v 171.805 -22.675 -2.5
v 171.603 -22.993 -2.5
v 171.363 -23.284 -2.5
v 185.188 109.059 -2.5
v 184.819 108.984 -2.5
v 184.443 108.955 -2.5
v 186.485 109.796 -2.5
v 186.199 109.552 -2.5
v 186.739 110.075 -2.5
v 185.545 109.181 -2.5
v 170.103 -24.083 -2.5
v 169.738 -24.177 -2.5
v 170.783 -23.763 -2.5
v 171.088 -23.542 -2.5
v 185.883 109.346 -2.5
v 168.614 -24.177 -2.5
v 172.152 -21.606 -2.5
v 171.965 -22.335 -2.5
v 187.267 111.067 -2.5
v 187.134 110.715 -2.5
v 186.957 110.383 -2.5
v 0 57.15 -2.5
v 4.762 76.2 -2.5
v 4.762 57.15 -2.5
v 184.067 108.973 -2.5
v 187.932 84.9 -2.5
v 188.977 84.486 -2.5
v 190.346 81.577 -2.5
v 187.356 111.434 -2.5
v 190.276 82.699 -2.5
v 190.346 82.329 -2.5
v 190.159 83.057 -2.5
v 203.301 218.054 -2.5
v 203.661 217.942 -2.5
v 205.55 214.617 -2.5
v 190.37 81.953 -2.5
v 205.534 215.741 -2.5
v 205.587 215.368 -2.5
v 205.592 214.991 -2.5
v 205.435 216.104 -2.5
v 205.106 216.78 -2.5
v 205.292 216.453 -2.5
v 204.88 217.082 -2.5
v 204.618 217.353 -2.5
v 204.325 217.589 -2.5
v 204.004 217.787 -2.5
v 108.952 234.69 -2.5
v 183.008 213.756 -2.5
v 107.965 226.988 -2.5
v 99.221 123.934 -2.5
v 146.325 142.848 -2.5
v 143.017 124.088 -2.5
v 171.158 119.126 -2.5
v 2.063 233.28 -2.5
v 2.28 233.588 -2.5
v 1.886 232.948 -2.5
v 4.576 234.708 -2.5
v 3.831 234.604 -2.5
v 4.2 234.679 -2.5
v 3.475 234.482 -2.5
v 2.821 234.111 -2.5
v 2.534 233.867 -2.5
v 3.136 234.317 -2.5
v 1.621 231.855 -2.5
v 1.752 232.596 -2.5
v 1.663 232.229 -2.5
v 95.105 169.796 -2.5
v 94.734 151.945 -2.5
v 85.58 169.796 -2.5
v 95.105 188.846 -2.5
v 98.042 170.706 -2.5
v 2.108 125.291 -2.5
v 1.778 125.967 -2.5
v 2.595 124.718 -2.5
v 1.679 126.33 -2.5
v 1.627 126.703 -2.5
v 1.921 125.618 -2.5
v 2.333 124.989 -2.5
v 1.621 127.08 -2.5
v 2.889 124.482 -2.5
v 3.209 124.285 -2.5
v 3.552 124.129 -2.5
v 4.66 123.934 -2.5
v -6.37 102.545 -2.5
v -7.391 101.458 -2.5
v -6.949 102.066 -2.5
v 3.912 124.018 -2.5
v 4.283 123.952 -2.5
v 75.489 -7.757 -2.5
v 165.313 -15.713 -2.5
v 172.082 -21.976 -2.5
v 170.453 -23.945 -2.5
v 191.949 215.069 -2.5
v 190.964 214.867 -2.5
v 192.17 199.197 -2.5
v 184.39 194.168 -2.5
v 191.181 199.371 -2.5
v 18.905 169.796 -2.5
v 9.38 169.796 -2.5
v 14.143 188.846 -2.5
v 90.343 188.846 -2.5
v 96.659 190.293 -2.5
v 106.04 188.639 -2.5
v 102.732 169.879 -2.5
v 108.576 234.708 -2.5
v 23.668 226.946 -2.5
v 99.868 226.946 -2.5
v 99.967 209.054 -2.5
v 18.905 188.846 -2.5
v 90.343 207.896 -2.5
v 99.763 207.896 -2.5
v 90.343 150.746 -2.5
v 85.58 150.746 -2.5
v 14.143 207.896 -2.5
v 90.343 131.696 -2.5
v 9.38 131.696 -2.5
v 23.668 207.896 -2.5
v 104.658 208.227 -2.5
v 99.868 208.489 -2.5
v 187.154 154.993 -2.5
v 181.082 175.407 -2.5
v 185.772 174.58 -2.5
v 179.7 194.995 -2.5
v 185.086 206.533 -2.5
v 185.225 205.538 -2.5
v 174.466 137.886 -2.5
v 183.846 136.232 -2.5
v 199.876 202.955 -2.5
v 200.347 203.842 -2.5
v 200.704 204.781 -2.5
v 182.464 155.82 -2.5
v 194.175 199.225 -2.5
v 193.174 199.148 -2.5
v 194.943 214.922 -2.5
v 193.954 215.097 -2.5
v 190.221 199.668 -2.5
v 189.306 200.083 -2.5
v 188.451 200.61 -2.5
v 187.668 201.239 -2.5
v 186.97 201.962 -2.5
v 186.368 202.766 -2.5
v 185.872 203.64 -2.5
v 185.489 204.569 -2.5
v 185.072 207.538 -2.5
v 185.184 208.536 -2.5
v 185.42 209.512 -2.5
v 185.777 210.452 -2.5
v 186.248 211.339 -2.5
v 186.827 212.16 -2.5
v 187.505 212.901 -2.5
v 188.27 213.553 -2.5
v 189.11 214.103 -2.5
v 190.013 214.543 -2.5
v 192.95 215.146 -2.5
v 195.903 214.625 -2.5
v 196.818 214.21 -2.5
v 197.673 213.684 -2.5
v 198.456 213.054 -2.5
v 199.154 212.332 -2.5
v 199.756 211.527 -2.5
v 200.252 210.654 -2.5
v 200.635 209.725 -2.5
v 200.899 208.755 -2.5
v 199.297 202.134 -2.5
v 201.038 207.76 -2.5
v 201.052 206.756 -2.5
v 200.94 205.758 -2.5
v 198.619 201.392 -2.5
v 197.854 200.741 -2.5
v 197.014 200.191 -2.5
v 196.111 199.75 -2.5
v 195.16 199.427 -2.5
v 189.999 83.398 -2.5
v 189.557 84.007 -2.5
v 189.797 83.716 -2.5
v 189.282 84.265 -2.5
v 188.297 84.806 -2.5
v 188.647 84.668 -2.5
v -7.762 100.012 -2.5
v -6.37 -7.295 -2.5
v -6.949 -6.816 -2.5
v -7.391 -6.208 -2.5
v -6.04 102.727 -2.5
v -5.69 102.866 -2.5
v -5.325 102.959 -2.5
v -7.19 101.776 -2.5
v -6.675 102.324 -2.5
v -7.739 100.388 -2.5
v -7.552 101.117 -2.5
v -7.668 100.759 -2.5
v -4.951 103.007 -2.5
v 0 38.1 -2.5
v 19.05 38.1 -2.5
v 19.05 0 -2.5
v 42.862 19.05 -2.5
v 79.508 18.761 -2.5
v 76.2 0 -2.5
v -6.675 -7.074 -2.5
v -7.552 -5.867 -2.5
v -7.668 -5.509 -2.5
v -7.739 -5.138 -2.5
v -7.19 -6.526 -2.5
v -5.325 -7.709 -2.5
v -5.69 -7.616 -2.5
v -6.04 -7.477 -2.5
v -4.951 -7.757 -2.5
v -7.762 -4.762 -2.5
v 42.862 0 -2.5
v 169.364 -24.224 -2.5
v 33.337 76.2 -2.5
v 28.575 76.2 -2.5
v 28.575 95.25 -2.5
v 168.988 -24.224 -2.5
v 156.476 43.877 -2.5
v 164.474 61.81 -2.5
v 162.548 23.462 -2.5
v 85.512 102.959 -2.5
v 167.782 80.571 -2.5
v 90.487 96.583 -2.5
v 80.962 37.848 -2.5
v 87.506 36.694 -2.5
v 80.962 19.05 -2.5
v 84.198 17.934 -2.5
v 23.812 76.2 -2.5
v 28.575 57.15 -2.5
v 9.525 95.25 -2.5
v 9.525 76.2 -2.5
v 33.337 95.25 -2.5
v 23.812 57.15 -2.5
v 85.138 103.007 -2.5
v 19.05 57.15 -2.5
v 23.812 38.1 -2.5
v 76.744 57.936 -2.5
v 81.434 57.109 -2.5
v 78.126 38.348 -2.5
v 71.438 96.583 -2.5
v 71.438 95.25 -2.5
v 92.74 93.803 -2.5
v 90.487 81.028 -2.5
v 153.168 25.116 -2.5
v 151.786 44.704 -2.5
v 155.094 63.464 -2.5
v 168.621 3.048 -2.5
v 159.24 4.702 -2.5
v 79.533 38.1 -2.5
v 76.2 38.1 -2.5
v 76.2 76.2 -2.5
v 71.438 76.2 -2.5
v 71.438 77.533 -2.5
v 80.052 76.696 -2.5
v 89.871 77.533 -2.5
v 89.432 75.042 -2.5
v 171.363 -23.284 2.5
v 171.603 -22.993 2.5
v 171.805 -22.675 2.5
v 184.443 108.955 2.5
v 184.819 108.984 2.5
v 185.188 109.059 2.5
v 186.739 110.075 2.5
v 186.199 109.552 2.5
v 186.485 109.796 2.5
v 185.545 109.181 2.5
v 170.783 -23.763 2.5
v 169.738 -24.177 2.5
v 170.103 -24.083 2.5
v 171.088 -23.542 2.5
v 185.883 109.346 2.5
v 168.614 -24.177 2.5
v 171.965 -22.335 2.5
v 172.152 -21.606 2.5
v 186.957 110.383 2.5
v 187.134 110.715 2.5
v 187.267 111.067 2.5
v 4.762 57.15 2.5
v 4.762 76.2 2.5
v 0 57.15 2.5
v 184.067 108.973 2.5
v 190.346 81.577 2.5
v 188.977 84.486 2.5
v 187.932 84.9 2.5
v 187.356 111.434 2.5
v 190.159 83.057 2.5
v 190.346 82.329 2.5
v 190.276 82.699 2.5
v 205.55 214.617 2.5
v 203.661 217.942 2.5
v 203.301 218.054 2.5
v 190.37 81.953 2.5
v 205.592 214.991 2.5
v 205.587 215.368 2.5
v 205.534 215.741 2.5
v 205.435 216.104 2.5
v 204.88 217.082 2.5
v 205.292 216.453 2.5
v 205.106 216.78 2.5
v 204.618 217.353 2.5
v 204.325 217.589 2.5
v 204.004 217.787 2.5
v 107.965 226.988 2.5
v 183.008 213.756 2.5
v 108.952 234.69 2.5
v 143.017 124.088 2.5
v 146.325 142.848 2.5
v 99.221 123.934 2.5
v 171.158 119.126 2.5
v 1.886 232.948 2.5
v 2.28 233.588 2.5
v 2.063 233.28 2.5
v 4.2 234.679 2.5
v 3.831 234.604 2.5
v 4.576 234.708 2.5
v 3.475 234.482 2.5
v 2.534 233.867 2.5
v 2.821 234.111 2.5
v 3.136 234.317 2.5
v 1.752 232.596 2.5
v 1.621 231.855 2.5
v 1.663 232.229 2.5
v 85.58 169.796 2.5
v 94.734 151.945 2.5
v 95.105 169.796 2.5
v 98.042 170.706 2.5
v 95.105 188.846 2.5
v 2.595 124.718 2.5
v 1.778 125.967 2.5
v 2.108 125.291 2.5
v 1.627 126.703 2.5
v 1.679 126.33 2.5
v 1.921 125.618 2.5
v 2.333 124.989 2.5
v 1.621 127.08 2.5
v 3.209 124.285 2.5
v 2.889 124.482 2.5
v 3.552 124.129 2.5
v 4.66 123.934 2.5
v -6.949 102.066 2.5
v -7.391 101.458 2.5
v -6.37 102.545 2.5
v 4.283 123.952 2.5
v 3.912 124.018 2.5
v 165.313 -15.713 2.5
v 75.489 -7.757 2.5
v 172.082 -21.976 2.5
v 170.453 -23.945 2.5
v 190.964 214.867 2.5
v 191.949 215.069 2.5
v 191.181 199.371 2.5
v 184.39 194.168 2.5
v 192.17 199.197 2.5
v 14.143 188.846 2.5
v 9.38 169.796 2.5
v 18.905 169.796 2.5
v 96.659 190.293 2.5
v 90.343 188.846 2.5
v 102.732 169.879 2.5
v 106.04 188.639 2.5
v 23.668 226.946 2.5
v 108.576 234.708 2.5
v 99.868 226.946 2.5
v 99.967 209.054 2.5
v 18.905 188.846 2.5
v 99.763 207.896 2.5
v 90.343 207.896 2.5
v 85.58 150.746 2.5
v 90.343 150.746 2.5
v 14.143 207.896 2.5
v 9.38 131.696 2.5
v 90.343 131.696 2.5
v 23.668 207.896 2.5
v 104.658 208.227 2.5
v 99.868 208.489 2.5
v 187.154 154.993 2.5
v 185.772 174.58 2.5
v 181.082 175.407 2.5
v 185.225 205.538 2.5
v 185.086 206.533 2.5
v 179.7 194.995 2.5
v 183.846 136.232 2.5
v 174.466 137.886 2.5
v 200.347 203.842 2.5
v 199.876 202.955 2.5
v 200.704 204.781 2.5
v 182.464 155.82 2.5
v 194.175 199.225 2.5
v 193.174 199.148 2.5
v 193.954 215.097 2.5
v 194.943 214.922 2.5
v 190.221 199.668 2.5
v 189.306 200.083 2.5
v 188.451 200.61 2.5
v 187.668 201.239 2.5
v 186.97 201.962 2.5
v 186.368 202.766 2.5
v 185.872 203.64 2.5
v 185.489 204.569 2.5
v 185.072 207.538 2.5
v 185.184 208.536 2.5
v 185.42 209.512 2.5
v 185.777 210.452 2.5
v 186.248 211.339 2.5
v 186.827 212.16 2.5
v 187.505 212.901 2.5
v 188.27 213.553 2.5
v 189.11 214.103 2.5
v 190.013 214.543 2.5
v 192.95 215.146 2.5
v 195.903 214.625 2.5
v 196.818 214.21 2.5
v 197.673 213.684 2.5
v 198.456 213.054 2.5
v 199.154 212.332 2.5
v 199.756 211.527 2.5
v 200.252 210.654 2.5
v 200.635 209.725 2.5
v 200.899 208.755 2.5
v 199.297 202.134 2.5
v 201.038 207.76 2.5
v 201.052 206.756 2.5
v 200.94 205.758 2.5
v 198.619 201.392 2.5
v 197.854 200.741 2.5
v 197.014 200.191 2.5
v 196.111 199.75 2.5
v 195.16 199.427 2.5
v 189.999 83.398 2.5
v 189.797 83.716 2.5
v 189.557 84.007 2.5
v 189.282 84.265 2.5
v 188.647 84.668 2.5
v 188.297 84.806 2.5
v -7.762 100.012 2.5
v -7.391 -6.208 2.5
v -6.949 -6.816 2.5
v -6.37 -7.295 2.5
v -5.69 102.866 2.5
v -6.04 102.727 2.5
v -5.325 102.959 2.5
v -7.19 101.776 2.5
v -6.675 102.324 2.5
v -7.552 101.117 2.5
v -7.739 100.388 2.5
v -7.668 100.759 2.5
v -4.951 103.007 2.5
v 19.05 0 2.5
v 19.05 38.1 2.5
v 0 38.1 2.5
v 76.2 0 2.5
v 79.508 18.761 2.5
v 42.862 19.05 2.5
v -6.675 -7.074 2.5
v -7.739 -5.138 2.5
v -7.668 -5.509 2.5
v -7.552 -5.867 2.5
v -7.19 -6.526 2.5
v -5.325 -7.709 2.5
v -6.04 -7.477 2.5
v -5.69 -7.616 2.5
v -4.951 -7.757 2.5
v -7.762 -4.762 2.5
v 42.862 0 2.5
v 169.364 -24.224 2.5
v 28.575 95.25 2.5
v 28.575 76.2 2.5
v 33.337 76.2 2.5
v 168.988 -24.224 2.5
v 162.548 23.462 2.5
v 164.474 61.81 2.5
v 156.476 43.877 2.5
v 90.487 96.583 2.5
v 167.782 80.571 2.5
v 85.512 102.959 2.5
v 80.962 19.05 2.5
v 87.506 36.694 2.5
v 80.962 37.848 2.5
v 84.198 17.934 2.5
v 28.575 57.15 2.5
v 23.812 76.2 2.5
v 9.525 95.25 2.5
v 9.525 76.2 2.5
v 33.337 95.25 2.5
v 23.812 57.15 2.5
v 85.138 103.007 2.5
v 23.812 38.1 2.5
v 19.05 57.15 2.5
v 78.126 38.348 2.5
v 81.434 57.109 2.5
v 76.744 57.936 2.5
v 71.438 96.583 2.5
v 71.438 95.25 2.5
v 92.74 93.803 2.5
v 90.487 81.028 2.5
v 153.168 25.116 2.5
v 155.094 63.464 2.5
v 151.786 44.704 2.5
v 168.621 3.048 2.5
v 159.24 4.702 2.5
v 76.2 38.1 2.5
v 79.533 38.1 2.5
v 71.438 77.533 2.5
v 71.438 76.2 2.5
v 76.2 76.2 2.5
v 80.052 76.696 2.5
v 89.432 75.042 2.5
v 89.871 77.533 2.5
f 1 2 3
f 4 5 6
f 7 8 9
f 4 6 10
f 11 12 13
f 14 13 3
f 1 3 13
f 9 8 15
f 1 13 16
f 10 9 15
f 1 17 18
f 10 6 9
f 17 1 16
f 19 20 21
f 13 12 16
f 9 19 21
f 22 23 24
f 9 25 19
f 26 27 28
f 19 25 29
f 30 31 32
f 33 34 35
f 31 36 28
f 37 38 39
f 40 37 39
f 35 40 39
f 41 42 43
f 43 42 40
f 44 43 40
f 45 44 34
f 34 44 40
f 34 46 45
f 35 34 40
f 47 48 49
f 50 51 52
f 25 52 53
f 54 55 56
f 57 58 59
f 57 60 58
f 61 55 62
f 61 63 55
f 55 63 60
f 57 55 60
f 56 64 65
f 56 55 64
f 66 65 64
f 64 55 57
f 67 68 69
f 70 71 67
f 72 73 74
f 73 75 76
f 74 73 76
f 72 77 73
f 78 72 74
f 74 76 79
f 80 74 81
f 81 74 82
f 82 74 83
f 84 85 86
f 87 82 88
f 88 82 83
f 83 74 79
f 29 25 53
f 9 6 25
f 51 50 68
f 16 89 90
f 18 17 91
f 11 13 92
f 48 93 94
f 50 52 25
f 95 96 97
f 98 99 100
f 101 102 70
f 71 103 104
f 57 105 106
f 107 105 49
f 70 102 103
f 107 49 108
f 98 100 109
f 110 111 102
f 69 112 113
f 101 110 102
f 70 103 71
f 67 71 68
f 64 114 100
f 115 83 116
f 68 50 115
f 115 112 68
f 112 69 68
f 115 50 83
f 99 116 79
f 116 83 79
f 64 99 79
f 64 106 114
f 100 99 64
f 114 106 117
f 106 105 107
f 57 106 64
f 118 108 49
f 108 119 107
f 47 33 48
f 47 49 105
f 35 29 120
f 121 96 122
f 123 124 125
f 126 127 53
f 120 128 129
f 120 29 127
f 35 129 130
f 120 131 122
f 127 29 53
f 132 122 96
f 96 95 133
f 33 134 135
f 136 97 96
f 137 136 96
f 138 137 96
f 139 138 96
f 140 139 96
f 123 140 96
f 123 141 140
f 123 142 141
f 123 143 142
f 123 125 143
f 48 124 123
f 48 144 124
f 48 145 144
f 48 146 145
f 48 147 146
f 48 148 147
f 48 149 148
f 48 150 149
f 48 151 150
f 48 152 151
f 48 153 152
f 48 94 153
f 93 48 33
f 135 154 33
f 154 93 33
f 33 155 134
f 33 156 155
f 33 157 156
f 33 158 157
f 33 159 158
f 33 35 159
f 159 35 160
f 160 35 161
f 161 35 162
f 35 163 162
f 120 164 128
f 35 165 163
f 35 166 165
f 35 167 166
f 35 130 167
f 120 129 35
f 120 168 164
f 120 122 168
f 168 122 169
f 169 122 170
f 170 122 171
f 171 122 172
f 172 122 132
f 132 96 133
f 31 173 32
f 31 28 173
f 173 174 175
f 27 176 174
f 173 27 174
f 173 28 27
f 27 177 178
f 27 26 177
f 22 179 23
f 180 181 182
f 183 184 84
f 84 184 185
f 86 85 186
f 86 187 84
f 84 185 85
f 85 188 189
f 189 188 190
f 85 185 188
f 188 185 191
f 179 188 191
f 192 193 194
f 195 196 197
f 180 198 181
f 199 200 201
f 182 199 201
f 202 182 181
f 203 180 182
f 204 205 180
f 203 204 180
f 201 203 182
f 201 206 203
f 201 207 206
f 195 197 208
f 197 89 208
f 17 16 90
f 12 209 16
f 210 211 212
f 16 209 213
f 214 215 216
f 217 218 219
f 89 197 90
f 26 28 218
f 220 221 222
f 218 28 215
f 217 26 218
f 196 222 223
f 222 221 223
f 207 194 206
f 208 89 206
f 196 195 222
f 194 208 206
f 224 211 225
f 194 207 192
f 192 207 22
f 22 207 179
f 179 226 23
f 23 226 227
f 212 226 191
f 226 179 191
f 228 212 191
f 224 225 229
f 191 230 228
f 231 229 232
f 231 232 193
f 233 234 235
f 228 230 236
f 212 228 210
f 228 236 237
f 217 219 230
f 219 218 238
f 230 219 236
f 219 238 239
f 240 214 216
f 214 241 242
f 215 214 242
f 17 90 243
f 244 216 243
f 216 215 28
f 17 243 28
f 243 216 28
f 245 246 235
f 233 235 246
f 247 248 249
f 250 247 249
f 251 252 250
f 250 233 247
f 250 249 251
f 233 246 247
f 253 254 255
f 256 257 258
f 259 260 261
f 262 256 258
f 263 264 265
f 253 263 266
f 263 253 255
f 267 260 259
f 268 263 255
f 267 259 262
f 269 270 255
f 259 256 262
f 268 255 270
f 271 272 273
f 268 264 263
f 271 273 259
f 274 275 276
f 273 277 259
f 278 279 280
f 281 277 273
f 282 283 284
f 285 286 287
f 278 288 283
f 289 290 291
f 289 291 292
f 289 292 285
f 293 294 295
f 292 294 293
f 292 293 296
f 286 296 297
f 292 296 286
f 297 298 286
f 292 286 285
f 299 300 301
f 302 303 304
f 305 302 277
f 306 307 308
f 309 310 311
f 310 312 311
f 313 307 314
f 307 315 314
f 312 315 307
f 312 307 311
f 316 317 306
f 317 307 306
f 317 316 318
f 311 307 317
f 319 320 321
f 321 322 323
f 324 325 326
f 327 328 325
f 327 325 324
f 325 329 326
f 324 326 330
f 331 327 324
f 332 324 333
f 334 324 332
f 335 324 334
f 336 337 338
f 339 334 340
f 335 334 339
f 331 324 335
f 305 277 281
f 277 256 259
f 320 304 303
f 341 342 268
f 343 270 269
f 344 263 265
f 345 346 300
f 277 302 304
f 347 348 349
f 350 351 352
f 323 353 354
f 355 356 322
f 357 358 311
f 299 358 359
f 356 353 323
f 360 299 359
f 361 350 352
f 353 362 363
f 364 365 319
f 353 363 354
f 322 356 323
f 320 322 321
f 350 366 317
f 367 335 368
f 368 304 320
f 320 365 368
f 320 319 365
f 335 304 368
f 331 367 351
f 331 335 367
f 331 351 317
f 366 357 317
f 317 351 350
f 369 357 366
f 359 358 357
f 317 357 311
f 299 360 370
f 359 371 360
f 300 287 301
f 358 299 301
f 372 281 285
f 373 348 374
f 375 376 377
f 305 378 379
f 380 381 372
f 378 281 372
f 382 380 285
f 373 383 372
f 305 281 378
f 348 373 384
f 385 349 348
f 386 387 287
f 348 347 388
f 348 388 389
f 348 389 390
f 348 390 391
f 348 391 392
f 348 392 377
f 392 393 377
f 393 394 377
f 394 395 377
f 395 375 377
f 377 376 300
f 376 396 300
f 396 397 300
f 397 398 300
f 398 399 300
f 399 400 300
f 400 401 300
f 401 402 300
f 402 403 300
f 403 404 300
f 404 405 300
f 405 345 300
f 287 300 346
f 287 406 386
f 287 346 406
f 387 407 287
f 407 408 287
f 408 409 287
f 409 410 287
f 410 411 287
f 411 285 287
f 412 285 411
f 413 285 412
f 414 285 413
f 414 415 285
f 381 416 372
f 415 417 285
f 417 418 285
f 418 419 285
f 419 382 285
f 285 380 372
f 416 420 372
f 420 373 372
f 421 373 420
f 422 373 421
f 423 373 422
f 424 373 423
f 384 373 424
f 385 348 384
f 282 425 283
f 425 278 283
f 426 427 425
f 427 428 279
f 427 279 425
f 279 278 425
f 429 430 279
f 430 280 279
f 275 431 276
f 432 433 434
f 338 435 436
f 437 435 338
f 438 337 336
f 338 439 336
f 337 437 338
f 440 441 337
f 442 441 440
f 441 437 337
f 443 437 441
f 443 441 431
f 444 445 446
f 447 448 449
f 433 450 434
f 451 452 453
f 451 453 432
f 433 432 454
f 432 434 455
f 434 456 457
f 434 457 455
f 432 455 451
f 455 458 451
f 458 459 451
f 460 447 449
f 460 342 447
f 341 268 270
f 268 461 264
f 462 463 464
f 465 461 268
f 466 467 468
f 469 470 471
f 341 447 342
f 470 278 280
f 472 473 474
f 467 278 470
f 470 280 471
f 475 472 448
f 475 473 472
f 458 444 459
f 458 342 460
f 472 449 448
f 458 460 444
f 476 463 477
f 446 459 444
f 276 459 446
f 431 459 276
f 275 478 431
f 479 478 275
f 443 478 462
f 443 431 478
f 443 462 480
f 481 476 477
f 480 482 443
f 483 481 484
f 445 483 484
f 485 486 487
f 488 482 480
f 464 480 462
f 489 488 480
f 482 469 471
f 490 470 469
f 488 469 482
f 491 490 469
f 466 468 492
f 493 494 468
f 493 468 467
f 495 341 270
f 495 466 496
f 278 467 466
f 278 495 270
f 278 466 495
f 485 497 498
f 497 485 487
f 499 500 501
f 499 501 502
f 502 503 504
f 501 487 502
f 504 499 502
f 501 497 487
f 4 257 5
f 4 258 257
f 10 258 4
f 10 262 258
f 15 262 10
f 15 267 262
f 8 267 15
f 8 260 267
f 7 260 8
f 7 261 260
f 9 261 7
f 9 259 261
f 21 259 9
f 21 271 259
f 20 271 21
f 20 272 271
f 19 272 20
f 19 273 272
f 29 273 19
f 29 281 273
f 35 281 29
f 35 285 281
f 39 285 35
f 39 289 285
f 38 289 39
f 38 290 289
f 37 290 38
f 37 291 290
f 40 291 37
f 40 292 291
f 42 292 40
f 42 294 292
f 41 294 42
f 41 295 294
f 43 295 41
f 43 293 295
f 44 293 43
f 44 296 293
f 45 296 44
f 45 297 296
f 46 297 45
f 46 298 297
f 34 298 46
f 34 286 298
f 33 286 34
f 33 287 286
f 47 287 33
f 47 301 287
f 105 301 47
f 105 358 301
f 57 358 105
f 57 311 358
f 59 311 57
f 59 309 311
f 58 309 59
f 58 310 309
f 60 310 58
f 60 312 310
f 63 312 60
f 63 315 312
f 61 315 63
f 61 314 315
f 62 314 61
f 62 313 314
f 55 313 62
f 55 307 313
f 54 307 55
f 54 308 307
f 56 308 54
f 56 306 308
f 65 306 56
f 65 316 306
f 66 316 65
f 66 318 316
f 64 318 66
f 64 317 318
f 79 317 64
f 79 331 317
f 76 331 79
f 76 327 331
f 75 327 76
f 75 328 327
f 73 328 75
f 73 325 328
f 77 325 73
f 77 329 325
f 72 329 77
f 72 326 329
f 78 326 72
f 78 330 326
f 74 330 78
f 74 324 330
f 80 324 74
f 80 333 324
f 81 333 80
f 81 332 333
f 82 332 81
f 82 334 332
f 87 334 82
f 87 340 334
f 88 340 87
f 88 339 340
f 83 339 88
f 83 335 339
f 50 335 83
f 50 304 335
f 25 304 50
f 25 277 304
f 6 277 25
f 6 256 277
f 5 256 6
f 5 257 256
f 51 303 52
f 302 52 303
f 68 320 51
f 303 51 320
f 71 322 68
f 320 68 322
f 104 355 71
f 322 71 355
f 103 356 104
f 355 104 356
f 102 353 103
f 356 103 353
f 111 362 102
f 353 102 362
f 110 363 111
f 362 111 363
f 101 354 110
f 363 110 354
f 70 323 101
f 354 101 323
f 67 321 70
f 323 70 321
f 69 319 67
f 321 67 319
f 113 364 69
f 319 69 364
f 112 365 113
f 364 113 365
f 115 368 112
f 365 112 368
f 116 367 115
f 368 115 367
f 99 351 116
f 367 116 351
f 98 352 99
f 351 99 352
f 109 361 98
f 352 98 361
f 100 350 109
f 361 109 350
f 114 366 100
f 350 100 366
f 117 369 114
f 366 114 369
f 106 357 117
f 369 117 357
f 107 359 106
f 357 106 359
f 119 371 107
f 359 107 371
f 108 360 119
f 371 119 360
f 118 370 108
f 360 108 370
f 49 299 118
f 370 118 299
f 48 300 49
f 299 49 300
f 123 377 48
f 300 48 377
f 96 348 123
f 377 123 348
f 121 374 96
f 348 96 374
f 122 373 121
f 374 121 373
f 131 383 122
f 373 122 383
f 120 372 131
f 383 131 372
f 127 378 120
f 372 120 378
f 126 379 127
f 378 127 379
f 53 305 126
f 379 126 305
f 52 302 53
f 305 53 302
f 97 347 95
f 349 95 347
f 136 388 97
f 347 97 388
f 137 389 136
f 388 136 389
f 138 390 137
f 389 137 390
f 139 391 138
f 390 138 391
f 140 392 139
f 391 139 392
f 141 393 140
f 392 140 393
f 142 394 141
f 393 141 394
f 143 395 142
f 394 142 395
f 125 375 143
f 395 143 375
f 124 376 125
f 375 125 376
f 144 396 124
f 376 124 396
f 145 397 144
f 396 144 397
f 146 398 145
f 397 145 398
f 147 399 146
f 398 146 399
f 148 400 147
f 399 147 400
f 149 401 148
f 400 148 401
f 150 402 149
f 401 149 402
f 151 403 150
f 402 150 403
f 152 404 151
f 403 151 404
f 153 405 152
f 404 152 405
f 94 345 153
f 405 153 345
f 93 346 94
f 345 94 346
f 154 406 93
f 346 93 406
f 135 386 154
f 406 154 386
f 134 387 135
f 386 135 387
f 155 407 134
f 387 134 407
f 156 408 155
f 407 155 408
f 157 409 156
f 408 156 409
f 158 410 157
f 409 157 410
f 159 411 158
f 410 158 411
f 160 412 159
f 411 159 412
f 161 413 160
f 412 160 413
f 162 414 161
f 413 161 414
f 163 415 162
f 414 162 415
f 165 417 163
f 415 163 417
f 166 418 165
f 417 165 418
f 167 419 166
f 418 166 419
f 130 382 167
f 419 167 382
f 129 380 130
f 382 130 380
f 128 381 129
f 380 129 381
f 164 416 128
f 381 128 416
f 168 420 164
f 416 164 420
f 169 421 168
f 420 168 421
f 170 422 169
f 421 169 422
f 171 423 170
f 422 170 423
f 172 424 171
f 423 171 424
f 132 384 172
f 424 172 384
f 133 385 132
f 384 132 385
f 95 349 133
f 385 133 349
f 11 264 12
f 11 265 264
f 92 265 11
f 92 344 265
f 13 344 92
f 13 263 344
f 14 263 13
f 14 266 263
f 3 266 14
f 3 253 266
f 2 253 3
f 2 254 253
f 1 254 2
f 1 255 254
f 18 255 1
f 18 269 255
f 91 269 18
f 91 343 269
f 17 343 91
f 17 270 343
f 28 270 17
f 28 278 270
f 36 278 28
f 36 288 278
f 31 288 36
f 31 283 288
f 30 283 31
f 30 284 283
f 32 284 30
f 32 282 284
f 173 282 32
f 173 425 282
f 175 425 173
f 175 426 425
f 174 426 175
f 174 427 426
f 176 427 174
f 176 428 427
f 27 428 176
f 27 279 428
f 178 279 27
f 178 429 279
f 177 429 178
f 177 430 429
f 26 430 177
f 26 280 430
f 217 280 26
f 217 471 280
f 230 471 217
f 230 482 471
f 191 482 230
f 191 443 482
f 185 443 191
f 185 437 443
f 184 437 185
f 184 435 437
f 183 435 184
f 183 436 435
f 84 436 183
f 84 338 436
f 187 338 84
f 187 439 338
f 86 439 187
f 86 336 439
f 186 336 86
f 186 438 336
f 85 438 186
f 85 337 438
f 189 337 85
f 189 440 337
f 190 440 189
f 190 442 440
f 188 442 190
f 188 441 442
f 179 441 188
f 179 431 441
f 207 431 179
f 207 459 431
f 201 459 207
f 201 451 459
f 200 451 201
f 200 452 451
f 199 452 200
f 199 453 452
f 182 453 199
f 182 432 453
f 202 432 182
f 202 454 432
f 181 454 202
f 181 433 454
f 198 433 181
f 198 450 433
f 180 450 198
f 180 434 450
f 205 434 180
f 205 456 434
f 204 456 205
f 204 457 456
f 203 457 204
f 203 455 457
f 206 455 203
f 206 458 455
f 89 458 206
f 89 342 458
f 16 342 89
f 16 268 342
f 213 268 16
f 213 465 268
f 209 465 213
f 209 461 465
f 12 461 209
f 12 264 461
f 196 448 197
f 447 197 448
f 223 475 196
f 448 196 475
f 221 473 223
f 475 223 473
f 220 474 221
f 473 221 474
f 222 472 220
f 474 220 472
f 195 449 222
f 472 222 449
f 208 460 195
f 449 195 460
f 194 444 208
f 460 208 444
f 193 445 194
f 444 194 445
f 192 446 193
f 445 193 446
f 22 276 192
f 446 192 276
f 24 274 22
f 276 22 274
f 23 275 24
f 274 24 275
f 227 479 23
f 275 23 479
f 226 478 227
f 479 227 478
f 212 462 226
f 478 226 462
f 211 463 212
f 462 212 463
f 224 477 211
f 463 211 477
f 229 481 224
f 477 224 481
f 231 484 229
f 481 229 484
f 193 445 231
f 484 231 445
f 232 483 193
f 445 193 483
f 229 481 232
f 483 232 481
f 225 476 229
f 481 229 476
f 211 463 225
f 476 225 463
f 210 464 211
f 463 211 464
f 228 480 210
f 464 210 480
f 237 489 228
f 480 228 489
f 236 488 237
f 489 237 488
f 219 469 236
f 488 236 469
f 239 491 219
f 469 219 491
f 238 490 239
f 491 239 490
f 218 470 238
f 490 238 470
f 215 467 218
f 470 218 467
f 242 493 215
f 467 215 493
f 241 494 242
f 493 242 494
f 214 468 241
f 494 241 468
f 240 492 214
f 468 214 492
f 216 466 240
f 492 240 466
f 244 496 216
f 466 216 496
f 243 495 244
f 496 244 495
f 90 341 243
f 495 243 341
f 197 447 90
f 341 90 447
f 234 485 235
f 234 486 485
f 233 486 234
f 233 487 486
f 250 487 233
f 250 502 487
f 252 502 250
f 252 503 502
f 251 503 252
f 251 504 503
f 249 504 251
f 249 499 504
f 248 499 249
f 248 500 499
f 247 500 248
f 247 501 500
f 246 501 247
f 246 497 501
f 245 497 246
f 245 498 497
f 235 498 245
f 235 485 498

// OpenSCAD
// file: base.scad
/* 1u = 1mm */
$fn = 50;
$fa = 5;
$fs = 0.1;

// CONSTANTS
PLATE_PLACEHOLDER_SIZE = 19.05;
SWITCH_SIZE = 14; // Change to 18 to see keycap clearance
ROTATION = 10; // degrees
RIGHT_PLATE_OFFSET = 7;

PLATE_HEIGHT = 5;
OUTER_WIDTH = 3;
INNER_WIDTH = 1.5;

// https://cdn.matt3o.com/uploads/2018/05/keycap-size-diagram.png
module plate_placeholder(width=1) {
    translate([width*PLATE_PLACEHOLDER_SIZE/2, PLATE_PLACEHOLDER_SIZE/2])
        square([width*PLATE_PLACEHOLDER_SIZE, PLATE_PLACEHOLDER_SIZE], center=true); // keycap placeholder space
}

module switch(width=1) {
    translate([width*PLATE_PLACEHOLDER_SIZE/2, PLATE_PLACEHOLDER_SIZE/2])
        square([SWITCH_SIZE, SWITCH_SIZE], center=true);
}

function sum(row, i = 0, sum_so_far = 0) = len(row) == i ? sum_so_far : sum(row, i+1, sum_so_far+row[i]);

function accumulate_lengths(row, i = 0, sum=0) = len(row) - 1 == i ? [sum] :
    concat(sum, accumulate_lengths(row, i+1, sum+row[i]));

module cluster(keys, type) { // 2d array
    for (row_index = [0:len(keys)-1]) {
        row_lengths = accumulate_lengths(keys[row_index]);

        for (col_index = [1:len(keys[row_index])-1]) {
            x_offset = row_lengths[col_index];
            y_offset = len(keys)-1-row_index;
            size = keys[row_index][col_index];

            if (size >= 1) {
                if (type == "B") {
                    translate([x_offset * PLATE_PLACEHOLDER_SIZE, y_offset * PLATE_PLACEHOLDER_SIZE, 0])
                        switch(size);
                } else if (type == "A") {
                    translate([x_offset * PLATE_PLACEHOLDER_SIZE, y_offset * PLATE_PLACEHOLDER_SIZE, 0])
                        plate_placeholder(size);
                }
            }
        }
    }
}

module ky_040(type) {
    if (type == "B") {
        circle(6.4/2);
    } else if (type == "A") {
        circle(16/2);
    }
}

// LEFT CLUSTER
//        PAD  ESC PAD   MODS KEY
left_cluster = [[0.5,  1, 0.25, 1,    1],
                [0.25, 1, 0.25, 1.5,  1],
                [0,    1, 0.25, 1.75, 1],
                [1,             2.25, 1],
                [1,          1.25]];

left_center_cluster = [[0.5,  1,   1, 1, 1],
                       [0,    1,   1, 1, 1],
                       [0.25, 1,   1, 1, 1],
                       [0.75, 1,   1, 1, 1],
                       [0.50, 1.5, 2, 1.25]];

right_center_cluster = [[0.75, 1,   1, 1, 1],
                        [0.25, 1,   1, 1, 1],
                        [0.5,  1,   1, 1, 1],
                        [0,    1,   1, 1, 1],
                        [0,    2.75, 1.5]];

right_cluster = [[0.25,   1, 1, 1, 1],
                 [0,   1, 1, 1, 1.5],
                 [0.5,    1, 1, 2.25],
                 [0.25,   1, 1, 1.75, 1],
                 [3, 1.5]];

LEFT_CENTER_OFFSET = left_center_cluster[len(left_center_cluster) - 1][0];

WIDTH = 9;
HEIGHT = 5;
PADDING = 0.25;

module left(type, padding=PADDING) {
    LEFT_CENTER_LENGTH = sum(left_center_cluster[len(left_center_cluster) - 1]);

    module base() {
        difference() {
            union() {
                // left
                translate([-padding*PLATE_PLACEHOLDER_SIZE, -padding*PLATE_PLACEHOLDER_SIZE, 0])
                    square([(4.5+LEFT_CENTER_OFFSET+padding)*PLATE_PLACEHOLDER_SIZE, (HEIGHT+2*padding)*PLATE_PLACEHOLDER_SIZE]);

                // middle left
                translate([4*PLATE_PLACEHOLDER_SIZE, 0, 0])
                    rotate(a=[0, 0, -ROTATION])
                    translate([-LEFT_CENTER_OFFSET*PLATE_PLACEHOLDER_SIZE, -padding*PLATE_PLACEHOLDER_SIZE, 0])
                    square([(LEFT_CENTER_LENGTH+padding)*PLATE_PLACEHOLDER_SIZE, (HEIGHT+2*padding)*PLATE_PLACEHOLDER_SIZE]);
            };

            union() {
                // Scuffed: Take out top triangle
                translate([0, (HEIGHT+padding)*PLATE_PLACEHOLDER_SIZE, 0])
                    square([(LEFT_CENTER_LENGTH+1)*PLATE_PLACEHOLDER_SIZE, PLATE_PLACEHOLDER_SIZE]);

                // Scuffed: Take out center left triangle
                translate([4*PLATE_PLACEHOLDER_SIZE, 0, 0])
                    rotate(a=[0, 0, -ROTATION])
                    translate([-LEFT_CENTER_OFFSET*PLATE_PLACEHOLDER_SIZE, (HEIGHT+padding)*PLATE_PLACEHOLDER_SIZE, 0])
                    square([(LEFT_CENTER_LENGTH+1)*PLATE_PLACEHOLDER_SIZE, PLATE_PLACEHOLDER_SIZE]);
            };
        };
    };

    module cutouts() {
        union() {
            // left
            cluster(left_cluster, type);

            // center left
            translate([4*PLATE_PLACEHOLDER_SIZE, 0, 0])       // Move object to appropriate position
                rotate(a=[0, 0, -ROTATION])                 // Apply rotation, centered on bottom left key
                translate([-LEFT_CENTER_OFFSET*PLATE_PLACEHOLDER_SIZE, 0, 0]) // Translate bottom left cluster corner to 0,0
                cluster(left_center_cluster, type);

            // #2
            if (type == "B") {
                translate([3.75*PLATE_PLACEHOLDER_SIZE, 4.07*PLATE_PLACEHOLDER_SIZE, 0])
                    switch(1);
            } else if (type == "A") {
                translate([3.75*PLATE_PLACEHOLDER_SIZE, 4.07*PLATE_PLACEHOLDER_SIZE, 0])
                    plate_placeholder(1);
            }
        };
    };

    difference() {
        minkowski() {
            base();
            circle(OUTER_WIDTH);
        };
        cutouts();
    };
}

module right(type, padding=PADDING) {
    RIGHT_CENTER_MAX_LENGTH = sum(right_center_cluster[0]);
    RIGHT_LENGTH = sum(right_cluster[len(right_cluster) - 2]);

    module base() {
        difference(){
            union() {
                // center right
                translate([0.5 * PLATE_PLACEHOLDER_SIZE, 0, 0])
                    rotate(a=[0, 0, ROTATION])
                    translate([-(RIGHT_CENTER_MAX_LENGTH + padding)*PLATE_PLACEHOLDER_SIZE, -padding*PLATE_PLACEHOLDER_SIZE, 0])
                    square([(RIGHT_CENTER_MAX_LENGTH + 4*padding)*PLATE_PLACEHOLDER_SIZE, (HEIGHT+2*padding)*PLATE_PLACEHOLDER_SIZE]);

                // right
                translate([-(padding+0.2)*PLATE_PLACEHOLDER_SIZE, -padding*PLATE_PLACEHOLDER_SIZE, 0])
                    square([(RIGHT_LENGTH+2*padding)*PLATE_PLACEHOLDER_SIZE, (HEIGHT+2*padding)*PLATE_PLACEHOLDER_SIZE]);
            }

            union() {
                // Scuffed: Take out center right triangle
                translate([0.5 * PLATE_PLACEHOLDER_SIZE, 0, 0])
                    rotate(a=[0, 0, ROTATION])
                    translate([-(RIGHT_CENTER_MAX_LENGTH + padding)*PLATE_PLACEHOLDER_SIZE, (HEIGHT+padding)*PLATE_PLACEHOLDER_SIZE, 0])
                    square([(RIGHT_CENTER_MAX_LENGTH + 4*padding)*PLATE_PLACEHOLDER_SIZE, PLATE_PLACEHOLDER_SIZE]);

                // Scuffed: Take out top triangle
                translate([-(padding+0.2)*PLATE_PLACEHOLDER_SIZE, (HEIGHT+padding)*PLATE_PLACEHOLDER_SIZE, 0])
                    square([(RIGHT_LENGTH+2*padding)*PLATE_PLACEHOLDER_SIZE, PLATE_PLACEHOLDER_SIZE]);
            }
        }
    };

    module cutouts() {
        // center right
        translate([0.5 * PLATE_PLACEHOLDER_SIZE, 0, 0])
            rotate(a=[0, 0, ROTATION])
            translate([-(RIGHT_CENTER_MAX_LENGTH) * PLATE_PLACEHOLDER_SIZE, 0, 0]) // Translate bottom right cluster corner to 0,0
            cluster(right_center_cluster, type);

        // right
        translate([-0.2 * PLATE_PLACEHOLDER_SIZE, 0, 0])
            cluster(right_cluster, type);

        translate([(RIGHT_CENTER_MAX_LENGTH-0.12)*PLATE_PLACEHOLDER_SIZE, (5-0.25)*PLATE_PLACEHOLDER_SIZE,0])
            ky_040(type);
    };

    translate([RIGHT_CENTER_MAX_LENGTH * PLATE_PLACEHOLDER_SIZE, RIGHT_PLATE_OFFSET * PLATE_PLACEHOLDER_SIZE, 0])
        rotate(a=[0, 0, -ROTATION])
        difference() {
            minkowski() {
                base();
                circle(OUTER_WIDTH);
            };
            cutouts();
        };
}
// main file
include <base.scad>;

linear_extrude(height=PLATE_HEIGHT, center=true)
    union() {
        left("A");
        right("A");
    }
